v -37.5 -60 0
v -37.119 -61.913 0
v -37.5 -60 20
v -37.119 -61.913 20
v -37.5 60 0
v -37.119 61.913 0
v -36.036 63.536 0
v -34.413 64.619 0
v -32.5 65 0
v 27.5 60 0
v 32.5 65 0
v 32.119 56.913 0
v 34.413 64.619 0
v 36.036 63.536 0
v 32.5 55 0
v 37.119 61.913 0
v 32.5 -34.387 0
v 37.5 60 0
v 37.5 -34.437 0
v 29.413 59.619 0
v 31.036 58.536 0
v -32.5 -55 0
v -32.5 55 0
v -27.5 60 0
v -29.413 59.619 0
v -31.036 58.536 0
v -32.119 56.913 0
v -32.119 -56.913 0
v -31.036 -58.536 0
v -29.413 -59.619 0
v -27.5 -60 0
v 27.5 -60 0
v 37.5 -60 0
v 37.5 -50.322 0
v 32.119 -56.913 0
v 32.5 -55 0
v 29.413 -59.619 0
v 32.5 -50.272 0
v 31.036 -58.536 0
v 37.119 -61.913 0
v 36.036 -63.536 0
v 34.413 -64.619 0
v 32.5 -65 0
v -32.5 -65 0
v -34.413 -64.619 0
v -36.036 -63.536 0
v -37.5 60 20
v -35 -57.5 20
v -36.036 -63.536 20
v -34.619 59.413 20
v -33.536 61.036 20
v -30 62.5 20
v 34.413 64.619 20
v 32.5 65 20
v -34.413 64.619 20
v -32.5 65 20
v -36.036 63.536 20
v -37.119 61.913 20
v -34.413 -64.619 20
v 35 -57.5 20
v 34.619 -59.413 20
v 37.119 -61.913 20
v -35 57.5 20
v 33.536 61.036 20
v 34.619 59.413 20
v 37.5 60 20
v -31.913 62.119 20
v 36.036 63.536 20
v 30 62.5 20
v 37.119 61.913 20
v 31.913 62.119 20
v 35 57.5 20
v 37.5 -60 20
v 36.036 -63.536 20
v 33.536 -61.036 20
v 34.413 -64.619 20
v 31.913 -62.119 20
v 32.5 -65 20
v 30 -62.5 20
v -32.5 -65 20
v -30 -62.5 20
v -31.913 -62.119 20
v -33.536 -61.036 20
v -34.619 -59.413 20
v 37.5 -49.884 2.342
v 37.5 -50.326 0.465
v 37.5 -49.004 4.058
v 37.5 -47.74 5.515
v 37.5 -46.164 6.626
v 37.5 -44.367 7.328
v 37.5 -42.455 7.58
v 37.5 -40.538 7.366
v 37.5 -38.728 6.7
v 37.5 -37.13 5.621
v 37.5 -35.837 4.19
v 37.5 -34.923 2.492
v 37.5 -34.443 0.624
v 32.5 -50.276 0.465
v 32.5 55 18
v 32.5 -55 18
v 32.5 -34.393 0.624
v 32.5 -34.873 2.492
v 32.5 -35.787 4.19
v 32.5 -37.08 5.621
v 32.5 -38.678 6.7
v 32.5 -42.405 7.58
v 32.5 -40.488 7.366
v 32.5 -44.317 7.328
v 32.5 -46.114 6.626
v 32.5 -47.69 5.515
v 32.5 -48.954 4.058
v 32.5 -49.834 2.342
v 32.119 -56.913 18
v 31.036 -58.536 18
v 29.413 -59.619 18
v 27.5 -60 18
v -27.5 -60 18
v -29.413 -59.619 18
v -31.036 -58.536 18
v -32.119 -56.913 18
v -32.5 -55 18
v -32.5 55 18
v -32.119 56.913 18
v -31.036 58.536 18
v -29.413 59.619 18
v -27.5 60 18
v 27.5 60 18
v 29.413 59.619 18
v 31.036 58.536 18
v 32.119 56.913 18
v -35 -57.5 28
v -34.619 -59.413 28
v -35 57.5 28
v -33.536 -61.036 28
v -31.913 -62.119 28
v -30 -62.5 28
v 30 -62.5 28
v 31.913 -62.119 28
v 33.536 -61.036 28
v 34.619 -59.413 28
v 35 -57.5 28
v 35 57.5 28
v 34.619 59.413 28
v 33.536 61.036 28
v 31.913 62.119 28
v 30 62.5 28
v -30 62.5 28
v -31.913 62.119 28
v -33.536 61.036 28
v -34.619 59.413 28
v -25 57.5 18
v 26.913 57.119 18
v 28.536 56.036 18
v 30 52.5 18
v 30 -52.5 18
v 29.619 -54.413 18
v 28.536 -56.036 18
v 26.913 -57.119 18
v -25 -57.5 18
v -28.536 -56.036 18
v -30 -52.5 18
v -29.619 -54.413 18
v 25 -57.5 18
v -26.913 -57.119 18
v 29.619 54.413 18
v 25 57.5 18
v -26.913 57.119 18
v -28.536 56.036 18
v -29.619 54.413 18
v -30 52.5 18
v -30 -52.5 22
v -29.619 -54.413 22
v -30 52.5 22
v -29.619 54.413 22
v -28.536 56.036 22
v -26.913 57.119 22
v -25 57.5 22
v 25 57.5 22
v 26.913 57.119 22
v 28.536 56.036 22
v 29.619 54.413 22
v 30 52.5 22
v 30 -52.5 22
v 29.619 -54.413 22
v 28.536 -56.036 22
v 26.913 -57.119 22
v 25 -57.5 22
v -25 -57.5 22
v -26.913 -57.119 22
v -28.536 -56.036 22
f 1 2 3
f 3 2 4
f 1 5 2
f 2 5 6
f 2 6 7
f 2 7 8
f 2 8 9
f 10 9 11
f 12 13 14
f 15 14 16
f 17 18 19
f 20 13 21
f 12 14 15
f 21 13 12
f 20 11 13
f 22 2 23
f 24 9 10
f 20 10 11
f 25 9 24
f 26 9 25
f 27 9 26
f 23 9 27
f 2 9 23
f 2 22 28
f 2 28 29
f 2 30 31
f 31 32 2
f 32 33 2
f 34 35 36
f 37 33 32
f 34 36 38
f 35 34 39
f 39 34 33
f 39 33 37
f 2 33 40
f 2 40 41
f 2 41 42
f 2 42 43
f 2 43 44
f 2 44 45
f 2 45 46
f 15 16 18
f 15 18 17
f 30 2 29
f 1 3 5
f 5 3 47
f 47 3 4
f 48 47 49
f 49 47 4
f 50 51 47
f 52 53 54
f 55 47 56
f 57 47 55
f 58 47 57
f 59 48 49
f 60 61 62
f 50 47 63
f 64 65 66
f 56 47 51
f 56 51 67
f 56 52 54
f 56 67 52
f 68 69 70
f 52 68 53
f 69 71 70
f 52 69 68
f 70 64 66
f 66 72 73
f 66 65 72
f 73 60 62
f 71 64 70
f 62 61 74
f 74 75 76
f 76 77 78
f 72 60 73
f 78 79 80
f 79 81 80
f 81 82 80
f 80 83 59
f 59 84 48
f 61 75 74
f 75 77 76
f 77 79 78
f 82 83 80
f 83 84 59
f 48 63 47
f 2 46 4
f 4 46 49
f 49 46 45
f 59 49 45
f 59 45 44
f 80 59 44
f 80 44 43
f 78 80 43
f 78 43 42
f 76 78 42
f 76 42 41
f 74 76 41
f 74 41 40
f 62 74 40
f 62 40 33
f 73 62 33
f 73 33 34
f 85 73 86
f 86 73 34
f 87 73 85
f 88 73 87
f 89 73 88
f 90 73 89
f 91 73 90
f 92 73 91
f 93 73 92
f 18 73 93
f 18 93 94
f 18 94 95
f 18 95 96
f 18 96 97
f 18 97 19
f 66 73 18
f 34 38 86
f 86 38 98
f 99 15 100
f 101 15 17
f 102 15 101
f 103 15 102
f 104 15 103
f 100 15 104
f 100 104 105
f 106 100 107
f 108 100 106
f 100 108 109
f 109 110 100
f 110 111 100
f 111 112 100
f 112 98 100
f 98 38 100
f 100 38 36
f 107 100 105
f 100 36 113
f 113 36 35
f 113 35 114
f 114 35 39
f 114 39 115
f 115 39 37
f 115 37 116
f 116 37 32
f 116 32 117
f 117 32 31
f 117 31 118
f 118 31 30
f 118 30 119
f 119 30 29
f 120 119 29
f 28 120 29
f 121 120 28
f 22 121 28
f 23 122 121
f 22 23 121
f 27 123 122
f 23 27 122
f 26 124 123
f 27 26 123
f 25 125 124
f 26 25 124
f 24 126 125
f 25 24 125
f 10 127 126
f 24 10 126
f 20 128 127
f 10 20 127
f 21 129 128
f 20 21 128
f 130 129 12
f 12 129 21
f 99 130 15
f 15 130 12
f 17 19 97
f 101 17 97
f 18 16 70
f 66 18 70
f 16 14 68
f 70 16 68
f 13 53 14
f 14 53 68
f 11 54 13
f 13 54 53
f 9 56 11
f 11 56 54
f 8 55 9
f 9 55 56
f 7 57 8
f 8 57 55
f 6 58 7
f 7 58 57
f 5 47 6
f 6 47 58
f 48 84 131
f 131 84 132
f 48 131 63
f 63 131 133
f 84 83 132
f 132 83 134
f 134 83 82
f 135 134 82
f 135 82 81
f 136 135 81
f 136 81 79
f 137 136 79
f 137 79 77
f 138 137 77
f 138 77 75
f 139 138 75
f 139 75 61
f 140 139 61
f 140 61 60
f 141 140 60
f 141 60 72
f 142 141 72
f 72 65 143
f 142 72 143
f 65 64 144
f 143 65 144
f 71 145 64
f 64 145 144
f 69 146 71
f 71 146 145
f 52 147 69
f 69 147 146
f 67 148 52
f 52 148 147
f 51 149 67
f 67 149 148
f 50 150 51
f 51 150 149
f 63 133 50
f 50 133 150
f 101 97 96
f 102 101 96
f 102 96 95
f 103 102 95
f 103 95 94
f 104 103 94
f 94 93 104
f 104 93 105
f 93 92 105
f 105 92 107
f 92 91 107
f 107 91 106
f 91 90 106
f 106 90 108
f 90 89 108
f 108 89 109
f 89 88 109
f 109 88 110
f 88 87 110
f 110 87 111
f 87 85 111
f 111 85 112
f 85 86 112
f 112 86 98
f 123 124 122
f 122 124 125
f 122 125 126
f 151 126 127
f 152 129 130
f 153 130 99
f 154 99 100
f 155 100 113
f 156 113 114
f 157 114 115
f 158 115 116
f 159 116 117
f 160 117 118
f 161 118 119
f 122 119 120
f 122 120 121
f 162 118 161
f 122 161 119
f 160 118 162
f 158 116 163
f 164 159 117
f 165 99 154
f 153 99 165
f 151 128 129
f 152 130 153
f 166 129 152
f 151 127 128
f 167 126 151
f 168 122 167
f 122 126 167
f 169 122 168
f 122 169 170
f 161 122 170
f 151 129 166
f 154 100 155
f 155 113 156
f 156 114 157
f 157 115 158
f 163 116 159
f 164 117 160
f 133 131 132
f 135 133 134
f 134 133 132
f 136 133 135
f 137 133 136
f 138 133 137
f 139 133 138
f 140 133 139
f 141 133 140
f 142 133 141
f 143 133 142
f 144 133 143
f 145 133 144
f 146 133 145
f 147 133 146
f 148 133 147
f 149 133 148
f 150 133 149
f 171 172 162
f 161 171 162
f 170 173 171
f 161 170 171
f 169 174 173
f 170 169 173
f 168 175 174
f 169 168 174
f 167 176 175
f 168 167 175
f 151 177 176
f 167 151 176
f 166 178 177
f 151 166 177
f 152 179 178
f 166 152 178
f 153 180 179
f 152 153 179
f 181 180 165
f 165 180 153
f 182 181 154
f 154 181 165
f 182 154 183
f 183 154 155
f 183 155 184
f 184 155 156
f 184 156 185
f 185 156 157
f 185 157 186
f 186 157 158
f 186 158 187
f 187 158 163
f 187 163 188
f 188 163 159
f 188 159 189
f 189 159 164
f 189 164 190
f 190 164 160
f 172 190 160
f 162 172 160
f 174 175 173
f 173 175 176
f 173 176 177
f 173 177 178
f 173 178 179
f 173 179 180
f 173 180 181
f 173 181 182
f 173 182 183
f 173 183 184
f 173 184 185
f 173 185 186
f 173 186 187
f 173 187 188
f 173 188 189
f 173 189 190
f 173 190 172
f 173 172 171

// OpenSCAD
module roundedRect(size, radius) {
	x = size[0];
	y = size[1];
	z = size[2];

	linear_extrude(height=z)
	
	hull() {
	  // place 4 circles in the corners, with the given radius
	  translate([(-x/2)+(radius/2), (-y/2)+(radius/2), 0])
	  circle(r=radius);
	
	  translate([(x/2)-(radius/2), (-y/2)+(radius/2), 0])
	  circle(r=radius);
	
	  translate([(-x/2)+(radius/2), (y/2)-(radius/2), 0])
	  circle(r=radius);
	
	  translate([(x/2)-(radius/2), (y/2)-(radius/2), 0])
	  circle(r=radius);
	}
}

module roundedRectHole(size, radius) {
	x = size[0];
	y = size[1];
	z = size[2];

	linear_extrude(height=z)

	hull() {
	  // place 4 circles in the corners, with the given radius
	  translate([(-x/2)+(radius/2), (-y/2)+(radius/2), 0])
	  circle(r=radius);
	
	  translate([(x/2)-(radius/2), (-y/2)+(radius/2), 0])
	  circle(r=radius);
	
	  translate([(-x/2)+(radius/2), (y/2)-(radius/2), 0])
	  circle(r=radius);
	
	  translate([(x/2)-(radius/2), (y/2)-(radius/2), 0])
	  circle(r=radius);
	}
}

module power_hole(distance, rot, size) {
	rotate(a = rot, v = [1, 100, 0]) {
		translate([0, distance, 30]) {
			// Power switch is 34mm tall
			cylinder(r = size, h = 34, center = true);
		}
	}
}

module front_box() {
	union() {
		roundedRect([70, 125, 20], 5, true);
		
		// Create the 10mm inner lip (no idea wtf to call anything not a mecha engineer)		
		translate(0,0,-10) { // translate is being totally ignored, lip appearing on the top instead of bottom
			roundedRect([65, 120, 28], 5, true); // not moving downward
			//cylinder (h = 40, r = 9, center = true); // wtf this can go negative but the rectangle can't
		}
	}
}

// Two of these will be made, like bread on a sammich
difference() {
	front_box();
	// Make the top of the hole shape stick out so that we know the surface is empty
	roundedRectHole([55, 110, 22], 5, true); //inner hole (smaller void)
	// Do the same but by having the hole shape stick out the bottom
	translate(0,0,-5) {
		roundedRectHole([60, 115, 18], 5, true); //outer hole (larger void) that makes the front edge happen
	}
	// Power switch has an 8mm radius
	power_hole(-42, 90, 8);
	// Same for manual override
	//power_hole(42, 90, 8);
}
